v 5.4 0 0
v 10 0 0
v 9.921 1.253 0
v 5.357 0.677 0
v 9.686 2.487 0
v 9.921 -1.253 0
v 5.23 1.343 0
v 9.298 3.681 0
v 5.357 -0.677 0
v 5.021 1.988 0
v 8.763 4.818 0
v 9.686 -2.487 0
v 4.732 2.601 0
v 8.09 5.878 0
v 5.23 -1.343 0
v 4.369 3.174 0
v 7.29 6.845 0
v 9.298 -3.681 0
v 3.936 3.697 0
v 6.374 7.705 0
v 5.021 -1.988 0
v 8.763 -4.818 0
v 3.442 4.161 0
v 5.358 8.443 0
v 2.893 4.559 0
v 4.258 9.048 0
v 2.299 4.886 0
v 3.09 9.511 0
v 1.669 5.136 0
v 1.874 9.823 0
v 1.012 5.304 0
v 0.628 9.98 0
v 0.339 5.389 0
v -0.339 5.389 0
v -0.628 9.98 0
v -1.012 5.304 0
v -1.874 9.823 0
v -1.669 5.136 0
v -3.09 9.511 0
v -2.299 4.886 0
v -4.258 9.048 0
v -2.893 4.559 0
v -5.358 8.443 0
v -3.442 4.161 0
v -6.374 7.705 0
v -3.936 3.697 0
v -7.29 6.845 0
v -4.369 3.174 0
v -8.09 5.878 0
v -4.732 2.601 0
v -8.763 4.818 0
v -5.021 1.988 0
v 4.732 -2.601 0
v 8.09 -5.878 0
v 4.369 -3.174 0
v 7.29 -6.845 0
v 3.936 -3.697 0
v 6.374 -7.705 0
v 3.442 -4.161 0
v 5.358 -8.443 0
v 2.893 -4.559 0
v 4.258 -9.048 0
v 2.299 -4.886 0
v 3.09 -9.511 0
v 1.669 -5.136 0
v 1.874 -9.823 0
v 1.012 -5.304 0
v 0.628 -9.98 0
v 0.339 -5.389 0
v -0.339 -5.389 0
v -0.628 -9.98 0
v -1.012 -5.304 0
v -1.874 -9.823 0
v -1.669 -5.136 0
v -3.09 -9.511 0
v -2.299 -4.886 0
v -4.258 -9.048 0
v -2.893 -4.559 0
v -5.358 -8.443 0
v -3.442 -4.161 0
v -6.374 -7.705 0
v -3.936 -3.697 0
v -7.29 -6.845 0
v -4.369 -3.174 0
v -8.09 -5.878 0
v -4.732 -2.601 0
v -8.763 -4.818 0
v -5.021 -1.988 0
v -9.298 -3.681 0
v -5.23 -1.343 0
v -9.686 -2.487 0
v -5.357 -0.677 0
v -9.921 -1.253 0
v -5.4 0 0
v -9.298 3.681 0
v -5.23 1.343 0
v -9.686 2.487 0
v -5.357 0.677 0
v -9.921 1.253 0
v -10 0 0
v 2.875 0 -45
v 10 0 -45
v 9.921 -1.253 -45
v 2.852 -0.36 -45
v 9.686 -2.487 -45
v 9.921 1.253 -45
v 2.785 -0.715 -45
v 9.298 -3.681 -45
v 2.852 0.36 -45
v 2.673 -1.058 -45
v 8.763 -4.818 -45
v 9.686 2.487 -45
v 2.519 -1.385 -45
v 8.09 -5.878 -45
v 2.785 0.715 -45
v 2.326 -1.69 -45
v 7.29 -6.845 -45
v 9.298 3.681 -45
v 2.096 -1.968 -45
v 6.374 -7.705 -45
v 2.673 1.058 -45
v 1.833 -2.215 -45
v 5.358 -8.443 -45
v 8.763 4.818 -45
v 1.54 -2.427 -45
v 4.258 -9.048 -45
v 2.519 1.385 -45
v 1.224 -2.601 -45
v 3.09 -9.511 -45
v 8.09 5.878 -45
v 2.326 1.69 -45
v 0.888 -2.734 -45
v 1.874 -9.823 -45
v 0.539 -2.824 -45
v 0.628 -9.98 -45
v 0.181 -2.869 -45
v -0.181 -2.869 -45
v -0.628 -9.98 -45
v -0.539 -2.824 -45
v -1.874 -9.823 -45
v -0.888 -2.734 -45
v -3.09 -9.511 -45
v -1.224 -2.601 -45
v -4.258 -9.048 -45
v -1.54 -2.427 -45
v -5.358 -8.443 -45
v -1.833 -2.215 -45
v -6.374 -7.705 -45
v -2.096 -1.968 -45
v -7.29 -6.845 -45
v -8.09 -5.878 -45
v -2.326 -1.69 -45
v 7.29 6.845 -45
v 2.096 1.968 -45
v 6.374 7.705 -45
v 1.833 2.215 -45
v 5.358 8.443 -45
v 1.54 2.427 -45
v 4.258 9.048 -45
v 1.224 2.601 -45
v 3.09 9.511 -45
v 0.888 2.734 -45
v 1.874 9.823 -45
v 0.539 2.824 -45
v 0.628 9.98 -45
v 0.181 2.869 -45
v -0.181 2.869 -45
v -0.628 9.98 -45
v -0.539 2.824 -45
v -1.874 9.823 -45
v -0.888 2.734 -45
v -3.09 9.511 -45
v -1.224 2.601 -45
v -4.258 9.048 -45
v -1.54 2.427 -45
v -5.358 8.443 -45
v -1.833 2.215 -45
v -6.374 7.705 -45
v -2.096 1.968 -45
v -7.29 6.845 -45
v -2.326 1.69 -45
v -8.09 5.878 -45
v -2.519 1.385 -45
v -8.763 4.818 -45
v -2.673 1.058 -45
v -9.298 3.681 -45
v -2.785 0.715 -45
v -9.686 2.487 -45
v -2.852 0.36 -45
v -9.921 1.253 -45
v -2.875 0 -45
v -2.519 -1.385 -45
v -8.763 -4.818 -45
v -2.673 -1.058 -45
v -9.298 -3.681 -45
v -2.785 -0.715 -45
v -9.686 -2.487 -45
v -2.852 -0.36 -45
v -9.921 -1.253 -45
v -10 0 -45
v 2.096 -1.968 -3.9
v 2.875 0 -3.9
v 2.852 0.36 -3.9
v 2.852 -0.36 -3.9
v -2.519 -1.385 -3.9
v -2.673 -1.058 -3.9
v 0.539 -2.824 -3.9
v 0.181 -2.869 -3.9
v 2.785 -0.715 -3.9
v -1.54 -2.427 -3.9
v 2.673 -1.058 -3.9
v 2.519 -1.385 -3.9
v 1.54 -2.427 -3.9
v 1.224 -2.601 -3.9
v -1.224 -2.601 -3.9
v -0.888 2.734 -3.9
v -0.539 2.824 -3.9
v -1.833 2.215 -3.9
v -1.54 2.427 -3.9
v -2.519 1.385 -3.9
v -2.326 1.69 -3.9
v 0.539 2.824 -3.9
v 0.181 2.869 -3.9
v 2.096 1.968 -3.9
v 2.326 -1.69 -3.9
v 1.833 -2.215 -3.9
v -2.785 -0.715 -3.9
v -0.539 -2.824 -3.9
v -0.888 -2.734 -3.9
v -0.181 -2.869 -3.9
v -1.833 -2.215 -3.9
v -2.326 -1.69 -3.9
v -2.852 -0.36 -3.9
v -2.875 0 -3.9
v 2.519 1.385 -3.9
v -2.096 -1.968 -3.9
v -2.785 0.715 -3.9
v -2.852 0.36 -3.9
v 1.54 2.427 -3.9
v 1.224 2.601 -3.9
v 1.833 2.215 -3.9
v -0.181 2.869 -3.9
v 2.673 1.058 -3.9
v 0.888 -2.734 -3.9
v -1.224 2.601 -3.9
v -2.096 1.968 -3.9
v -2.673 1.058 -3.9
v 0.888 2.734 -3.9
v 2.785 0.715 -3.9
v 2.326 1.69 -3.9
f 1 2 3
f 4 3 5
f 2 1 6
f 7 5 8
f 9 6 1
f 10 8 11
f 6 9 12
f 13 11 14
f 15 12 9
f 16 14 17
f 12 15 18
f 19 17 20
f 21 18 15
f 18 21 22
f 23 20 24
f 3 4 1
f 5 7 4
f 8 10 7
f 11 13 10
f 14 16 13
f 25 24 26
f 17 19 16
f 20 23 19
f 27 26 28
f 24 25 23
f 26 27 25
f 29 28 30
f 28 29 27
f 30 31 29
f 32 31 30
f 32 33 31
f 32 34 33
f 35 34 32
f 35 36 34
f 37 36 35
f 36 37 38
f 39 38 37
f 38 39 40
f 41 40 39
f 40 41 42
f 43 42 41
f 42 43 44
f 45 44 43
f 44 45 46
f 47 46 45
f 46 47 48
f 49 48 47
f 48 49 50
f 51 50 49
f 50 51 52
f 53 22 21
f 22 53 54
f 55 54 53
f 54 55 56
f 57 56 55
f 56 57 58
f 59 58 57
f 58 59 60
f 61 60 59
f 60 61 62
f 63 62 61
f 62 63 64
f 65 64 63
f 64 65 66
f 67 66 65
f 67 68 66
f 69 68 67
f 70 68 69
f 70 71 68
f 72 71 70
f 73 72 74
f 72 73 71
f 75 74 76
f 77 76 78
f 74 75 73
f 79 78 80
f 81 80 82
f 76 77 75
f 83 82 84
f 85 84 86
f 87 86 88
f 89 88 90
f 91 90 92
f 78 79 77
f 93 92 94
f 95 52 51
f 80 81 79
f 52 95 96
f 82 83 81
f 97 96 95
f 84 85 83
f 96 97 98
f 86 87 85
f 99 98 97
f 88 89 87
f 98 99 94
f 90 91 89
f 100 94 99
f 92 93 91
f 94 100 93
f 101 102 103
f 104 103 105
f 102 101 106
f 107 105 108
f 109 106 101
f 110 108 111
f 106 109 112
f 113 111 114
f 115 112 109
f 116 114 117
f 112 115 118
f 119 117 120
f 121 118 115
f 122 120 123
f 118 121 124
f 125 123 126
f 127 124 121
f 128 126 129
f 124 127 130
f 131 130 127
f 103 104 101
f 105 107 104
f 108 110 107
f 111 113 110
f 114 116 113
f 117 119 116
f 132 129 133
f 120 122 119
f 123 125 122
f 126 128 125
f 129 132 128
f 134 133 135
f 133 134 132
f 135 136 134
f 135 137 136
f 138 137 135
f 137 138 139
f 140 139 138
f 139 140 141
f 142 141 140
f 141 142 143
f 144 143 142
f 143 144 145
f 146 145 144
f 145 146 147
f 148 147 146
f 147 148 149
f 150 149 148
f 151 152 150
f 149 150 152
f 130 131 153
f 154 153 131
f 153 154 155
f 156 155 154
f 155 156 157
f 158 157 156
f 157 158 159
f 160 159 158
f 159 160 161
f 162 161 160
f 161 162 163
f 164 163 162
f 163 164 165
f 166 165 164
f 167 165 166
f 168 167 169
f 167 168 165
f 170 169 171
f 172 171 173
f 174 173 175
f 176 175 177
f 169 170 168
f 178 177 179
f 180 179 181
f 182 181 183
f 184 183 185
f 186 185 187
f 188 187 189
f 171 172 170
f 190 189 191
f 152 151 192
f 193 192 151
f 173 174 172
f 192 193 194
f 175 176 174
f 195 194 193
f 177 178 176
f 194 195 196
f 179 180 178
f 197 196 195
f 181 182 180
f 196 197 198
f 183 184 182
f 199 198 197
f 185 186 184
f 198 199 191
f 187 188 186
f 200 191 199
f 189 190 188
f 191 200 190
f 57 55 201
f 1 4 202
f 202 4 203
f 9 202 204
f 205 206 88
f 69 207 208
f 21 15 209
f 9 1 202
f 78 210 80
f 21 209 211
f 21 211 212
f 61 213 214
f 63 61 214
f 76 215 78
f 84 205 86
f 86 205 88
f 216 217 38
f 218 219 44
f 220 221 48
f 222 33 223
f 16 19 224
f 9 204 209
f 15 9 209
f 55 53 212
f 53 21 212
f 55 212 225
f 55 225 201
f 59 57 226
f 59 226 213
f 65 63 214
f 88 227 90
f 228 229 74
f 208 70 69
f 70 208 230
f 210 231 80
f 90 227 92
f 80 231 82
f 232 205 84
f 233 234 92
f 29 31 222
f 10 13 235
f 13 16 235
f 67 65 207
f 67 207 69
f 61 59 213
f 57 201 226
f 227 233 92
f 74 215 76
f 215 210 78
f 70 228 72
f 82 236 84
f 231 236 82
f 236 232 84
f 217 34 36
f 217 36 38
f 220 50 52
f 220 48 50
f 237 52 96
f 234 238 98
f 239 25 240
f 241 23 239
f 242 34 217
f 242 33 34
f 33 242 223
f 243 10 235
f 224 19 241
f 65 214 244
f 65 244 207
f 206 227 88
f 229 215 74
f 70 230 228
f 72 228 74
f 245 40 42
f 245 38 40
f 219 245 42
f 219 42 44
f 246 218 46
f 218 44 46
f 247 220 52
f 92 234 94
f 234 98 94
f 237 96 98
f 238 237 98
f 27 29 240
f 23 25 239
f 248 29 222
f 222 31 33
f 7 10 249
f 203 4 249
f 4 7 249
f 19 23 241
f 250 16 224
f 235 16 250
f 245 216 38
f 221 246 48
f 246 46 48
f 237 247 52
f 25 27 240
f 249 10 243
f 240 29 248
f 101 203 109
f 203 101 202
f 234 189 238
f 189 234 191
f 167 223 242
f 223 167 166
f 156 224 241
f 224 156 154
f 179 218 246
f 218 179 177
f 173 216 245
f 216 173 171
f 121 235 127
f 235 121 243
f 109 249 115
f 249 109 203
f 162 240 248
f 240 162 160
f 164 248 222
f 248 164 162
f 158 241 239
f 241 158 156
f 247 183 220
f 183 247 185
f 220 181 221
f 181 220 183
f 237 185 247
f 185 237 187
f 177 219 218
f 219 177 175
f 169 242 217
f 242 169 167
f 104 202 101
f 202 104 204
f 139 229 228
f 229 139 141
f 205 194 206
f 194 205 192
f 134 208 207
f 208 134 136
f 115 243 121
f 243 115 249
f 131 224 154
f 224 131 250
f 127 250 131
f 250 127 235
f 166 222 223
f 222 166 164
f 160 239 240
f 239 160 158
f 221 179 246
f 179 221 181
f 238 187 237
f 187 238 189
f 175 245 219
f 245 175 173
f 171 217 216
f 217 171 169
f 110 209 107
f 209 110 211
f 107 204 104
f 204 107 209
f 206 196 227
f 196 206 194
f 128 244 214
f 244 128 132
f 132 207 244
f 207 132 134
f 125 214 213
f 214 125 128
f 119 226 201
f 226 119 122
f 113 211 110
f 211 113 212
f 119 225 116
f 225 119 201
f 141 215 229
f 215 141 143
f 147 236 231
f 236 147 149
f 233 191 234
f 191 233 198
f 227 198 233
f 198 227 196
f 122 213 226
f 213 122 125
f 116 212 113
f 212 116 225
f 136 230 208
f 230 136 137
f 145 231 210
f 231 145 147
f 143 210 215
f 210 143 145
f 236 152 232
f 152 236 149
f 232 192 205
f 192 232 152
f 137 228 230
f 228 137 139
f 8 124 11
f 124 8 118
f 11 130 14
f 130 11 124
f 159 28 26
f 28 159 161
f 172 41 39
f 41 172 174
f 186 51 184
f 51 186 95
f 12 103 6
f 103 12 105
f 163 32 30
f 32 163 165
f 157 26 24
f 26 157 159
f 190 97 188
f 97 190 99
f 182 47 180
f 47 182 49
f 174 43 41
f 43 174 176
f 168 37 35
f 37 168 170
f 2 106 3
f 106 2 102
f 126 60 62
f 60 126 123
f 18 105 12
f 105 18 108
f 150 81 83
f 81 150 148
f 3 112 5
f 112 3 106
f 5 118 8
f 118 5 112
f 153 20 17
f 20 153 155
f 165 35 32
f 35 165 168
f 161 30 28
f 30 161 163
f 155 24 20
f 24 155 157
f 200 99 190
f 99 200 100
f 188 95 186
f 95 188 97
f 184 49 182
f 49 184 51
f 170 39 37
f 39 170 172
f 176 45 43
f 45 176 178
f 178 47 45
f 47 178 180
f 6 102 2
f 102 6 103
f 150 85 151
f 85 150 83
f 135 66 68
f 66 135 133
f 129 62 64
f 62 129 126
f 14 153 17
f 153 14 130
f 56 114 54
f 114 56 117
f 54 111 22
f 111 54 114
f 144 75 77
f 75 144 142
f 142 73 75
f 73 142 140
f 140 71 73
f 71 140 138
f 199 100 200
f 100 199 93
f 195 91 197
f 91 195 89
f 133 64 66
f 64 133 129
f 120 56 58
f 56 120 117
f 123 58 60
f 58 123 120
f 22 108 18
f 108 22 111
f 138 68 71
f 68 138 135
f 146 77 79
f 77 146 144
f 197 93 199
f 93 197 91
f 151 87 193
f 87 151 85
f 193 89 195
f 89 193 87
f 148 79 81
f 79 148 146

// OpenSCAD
$fn = 50;


difference() {
	union() {
		translate(v = [0, 0, -45.0000000000]) {
			cylinder(h = 45, r = 10.0000000000);
		}
	}
	union() {
		translate(v = [0, 0, 0]) {
			rotate(a = [0, 0, 0]) {
				difference() {
					union() {
						#translate(v = [0, 0, -45.0000000000]) {
							cylinder(h = 45, r = 2.6000000000);
						}
						#translate(v = [0, 0, -3.9000000000]) {
							cylinder(h = 3.9000000000, r = 10.0000000000, r1 = 2.8750000000, r2 = 5.4000000000);
						}
						#translate(v = [0, 0, -45.0000000000]) {
							cylinder(h = 45, r = 2.8750000000);
						}
						#translate(v = [0, 0, -45.0000000000]) {
							cylinder(h = 45, r = 2.6000000000);
						}
					}
					union();
				}
			}
		}
	}
}
